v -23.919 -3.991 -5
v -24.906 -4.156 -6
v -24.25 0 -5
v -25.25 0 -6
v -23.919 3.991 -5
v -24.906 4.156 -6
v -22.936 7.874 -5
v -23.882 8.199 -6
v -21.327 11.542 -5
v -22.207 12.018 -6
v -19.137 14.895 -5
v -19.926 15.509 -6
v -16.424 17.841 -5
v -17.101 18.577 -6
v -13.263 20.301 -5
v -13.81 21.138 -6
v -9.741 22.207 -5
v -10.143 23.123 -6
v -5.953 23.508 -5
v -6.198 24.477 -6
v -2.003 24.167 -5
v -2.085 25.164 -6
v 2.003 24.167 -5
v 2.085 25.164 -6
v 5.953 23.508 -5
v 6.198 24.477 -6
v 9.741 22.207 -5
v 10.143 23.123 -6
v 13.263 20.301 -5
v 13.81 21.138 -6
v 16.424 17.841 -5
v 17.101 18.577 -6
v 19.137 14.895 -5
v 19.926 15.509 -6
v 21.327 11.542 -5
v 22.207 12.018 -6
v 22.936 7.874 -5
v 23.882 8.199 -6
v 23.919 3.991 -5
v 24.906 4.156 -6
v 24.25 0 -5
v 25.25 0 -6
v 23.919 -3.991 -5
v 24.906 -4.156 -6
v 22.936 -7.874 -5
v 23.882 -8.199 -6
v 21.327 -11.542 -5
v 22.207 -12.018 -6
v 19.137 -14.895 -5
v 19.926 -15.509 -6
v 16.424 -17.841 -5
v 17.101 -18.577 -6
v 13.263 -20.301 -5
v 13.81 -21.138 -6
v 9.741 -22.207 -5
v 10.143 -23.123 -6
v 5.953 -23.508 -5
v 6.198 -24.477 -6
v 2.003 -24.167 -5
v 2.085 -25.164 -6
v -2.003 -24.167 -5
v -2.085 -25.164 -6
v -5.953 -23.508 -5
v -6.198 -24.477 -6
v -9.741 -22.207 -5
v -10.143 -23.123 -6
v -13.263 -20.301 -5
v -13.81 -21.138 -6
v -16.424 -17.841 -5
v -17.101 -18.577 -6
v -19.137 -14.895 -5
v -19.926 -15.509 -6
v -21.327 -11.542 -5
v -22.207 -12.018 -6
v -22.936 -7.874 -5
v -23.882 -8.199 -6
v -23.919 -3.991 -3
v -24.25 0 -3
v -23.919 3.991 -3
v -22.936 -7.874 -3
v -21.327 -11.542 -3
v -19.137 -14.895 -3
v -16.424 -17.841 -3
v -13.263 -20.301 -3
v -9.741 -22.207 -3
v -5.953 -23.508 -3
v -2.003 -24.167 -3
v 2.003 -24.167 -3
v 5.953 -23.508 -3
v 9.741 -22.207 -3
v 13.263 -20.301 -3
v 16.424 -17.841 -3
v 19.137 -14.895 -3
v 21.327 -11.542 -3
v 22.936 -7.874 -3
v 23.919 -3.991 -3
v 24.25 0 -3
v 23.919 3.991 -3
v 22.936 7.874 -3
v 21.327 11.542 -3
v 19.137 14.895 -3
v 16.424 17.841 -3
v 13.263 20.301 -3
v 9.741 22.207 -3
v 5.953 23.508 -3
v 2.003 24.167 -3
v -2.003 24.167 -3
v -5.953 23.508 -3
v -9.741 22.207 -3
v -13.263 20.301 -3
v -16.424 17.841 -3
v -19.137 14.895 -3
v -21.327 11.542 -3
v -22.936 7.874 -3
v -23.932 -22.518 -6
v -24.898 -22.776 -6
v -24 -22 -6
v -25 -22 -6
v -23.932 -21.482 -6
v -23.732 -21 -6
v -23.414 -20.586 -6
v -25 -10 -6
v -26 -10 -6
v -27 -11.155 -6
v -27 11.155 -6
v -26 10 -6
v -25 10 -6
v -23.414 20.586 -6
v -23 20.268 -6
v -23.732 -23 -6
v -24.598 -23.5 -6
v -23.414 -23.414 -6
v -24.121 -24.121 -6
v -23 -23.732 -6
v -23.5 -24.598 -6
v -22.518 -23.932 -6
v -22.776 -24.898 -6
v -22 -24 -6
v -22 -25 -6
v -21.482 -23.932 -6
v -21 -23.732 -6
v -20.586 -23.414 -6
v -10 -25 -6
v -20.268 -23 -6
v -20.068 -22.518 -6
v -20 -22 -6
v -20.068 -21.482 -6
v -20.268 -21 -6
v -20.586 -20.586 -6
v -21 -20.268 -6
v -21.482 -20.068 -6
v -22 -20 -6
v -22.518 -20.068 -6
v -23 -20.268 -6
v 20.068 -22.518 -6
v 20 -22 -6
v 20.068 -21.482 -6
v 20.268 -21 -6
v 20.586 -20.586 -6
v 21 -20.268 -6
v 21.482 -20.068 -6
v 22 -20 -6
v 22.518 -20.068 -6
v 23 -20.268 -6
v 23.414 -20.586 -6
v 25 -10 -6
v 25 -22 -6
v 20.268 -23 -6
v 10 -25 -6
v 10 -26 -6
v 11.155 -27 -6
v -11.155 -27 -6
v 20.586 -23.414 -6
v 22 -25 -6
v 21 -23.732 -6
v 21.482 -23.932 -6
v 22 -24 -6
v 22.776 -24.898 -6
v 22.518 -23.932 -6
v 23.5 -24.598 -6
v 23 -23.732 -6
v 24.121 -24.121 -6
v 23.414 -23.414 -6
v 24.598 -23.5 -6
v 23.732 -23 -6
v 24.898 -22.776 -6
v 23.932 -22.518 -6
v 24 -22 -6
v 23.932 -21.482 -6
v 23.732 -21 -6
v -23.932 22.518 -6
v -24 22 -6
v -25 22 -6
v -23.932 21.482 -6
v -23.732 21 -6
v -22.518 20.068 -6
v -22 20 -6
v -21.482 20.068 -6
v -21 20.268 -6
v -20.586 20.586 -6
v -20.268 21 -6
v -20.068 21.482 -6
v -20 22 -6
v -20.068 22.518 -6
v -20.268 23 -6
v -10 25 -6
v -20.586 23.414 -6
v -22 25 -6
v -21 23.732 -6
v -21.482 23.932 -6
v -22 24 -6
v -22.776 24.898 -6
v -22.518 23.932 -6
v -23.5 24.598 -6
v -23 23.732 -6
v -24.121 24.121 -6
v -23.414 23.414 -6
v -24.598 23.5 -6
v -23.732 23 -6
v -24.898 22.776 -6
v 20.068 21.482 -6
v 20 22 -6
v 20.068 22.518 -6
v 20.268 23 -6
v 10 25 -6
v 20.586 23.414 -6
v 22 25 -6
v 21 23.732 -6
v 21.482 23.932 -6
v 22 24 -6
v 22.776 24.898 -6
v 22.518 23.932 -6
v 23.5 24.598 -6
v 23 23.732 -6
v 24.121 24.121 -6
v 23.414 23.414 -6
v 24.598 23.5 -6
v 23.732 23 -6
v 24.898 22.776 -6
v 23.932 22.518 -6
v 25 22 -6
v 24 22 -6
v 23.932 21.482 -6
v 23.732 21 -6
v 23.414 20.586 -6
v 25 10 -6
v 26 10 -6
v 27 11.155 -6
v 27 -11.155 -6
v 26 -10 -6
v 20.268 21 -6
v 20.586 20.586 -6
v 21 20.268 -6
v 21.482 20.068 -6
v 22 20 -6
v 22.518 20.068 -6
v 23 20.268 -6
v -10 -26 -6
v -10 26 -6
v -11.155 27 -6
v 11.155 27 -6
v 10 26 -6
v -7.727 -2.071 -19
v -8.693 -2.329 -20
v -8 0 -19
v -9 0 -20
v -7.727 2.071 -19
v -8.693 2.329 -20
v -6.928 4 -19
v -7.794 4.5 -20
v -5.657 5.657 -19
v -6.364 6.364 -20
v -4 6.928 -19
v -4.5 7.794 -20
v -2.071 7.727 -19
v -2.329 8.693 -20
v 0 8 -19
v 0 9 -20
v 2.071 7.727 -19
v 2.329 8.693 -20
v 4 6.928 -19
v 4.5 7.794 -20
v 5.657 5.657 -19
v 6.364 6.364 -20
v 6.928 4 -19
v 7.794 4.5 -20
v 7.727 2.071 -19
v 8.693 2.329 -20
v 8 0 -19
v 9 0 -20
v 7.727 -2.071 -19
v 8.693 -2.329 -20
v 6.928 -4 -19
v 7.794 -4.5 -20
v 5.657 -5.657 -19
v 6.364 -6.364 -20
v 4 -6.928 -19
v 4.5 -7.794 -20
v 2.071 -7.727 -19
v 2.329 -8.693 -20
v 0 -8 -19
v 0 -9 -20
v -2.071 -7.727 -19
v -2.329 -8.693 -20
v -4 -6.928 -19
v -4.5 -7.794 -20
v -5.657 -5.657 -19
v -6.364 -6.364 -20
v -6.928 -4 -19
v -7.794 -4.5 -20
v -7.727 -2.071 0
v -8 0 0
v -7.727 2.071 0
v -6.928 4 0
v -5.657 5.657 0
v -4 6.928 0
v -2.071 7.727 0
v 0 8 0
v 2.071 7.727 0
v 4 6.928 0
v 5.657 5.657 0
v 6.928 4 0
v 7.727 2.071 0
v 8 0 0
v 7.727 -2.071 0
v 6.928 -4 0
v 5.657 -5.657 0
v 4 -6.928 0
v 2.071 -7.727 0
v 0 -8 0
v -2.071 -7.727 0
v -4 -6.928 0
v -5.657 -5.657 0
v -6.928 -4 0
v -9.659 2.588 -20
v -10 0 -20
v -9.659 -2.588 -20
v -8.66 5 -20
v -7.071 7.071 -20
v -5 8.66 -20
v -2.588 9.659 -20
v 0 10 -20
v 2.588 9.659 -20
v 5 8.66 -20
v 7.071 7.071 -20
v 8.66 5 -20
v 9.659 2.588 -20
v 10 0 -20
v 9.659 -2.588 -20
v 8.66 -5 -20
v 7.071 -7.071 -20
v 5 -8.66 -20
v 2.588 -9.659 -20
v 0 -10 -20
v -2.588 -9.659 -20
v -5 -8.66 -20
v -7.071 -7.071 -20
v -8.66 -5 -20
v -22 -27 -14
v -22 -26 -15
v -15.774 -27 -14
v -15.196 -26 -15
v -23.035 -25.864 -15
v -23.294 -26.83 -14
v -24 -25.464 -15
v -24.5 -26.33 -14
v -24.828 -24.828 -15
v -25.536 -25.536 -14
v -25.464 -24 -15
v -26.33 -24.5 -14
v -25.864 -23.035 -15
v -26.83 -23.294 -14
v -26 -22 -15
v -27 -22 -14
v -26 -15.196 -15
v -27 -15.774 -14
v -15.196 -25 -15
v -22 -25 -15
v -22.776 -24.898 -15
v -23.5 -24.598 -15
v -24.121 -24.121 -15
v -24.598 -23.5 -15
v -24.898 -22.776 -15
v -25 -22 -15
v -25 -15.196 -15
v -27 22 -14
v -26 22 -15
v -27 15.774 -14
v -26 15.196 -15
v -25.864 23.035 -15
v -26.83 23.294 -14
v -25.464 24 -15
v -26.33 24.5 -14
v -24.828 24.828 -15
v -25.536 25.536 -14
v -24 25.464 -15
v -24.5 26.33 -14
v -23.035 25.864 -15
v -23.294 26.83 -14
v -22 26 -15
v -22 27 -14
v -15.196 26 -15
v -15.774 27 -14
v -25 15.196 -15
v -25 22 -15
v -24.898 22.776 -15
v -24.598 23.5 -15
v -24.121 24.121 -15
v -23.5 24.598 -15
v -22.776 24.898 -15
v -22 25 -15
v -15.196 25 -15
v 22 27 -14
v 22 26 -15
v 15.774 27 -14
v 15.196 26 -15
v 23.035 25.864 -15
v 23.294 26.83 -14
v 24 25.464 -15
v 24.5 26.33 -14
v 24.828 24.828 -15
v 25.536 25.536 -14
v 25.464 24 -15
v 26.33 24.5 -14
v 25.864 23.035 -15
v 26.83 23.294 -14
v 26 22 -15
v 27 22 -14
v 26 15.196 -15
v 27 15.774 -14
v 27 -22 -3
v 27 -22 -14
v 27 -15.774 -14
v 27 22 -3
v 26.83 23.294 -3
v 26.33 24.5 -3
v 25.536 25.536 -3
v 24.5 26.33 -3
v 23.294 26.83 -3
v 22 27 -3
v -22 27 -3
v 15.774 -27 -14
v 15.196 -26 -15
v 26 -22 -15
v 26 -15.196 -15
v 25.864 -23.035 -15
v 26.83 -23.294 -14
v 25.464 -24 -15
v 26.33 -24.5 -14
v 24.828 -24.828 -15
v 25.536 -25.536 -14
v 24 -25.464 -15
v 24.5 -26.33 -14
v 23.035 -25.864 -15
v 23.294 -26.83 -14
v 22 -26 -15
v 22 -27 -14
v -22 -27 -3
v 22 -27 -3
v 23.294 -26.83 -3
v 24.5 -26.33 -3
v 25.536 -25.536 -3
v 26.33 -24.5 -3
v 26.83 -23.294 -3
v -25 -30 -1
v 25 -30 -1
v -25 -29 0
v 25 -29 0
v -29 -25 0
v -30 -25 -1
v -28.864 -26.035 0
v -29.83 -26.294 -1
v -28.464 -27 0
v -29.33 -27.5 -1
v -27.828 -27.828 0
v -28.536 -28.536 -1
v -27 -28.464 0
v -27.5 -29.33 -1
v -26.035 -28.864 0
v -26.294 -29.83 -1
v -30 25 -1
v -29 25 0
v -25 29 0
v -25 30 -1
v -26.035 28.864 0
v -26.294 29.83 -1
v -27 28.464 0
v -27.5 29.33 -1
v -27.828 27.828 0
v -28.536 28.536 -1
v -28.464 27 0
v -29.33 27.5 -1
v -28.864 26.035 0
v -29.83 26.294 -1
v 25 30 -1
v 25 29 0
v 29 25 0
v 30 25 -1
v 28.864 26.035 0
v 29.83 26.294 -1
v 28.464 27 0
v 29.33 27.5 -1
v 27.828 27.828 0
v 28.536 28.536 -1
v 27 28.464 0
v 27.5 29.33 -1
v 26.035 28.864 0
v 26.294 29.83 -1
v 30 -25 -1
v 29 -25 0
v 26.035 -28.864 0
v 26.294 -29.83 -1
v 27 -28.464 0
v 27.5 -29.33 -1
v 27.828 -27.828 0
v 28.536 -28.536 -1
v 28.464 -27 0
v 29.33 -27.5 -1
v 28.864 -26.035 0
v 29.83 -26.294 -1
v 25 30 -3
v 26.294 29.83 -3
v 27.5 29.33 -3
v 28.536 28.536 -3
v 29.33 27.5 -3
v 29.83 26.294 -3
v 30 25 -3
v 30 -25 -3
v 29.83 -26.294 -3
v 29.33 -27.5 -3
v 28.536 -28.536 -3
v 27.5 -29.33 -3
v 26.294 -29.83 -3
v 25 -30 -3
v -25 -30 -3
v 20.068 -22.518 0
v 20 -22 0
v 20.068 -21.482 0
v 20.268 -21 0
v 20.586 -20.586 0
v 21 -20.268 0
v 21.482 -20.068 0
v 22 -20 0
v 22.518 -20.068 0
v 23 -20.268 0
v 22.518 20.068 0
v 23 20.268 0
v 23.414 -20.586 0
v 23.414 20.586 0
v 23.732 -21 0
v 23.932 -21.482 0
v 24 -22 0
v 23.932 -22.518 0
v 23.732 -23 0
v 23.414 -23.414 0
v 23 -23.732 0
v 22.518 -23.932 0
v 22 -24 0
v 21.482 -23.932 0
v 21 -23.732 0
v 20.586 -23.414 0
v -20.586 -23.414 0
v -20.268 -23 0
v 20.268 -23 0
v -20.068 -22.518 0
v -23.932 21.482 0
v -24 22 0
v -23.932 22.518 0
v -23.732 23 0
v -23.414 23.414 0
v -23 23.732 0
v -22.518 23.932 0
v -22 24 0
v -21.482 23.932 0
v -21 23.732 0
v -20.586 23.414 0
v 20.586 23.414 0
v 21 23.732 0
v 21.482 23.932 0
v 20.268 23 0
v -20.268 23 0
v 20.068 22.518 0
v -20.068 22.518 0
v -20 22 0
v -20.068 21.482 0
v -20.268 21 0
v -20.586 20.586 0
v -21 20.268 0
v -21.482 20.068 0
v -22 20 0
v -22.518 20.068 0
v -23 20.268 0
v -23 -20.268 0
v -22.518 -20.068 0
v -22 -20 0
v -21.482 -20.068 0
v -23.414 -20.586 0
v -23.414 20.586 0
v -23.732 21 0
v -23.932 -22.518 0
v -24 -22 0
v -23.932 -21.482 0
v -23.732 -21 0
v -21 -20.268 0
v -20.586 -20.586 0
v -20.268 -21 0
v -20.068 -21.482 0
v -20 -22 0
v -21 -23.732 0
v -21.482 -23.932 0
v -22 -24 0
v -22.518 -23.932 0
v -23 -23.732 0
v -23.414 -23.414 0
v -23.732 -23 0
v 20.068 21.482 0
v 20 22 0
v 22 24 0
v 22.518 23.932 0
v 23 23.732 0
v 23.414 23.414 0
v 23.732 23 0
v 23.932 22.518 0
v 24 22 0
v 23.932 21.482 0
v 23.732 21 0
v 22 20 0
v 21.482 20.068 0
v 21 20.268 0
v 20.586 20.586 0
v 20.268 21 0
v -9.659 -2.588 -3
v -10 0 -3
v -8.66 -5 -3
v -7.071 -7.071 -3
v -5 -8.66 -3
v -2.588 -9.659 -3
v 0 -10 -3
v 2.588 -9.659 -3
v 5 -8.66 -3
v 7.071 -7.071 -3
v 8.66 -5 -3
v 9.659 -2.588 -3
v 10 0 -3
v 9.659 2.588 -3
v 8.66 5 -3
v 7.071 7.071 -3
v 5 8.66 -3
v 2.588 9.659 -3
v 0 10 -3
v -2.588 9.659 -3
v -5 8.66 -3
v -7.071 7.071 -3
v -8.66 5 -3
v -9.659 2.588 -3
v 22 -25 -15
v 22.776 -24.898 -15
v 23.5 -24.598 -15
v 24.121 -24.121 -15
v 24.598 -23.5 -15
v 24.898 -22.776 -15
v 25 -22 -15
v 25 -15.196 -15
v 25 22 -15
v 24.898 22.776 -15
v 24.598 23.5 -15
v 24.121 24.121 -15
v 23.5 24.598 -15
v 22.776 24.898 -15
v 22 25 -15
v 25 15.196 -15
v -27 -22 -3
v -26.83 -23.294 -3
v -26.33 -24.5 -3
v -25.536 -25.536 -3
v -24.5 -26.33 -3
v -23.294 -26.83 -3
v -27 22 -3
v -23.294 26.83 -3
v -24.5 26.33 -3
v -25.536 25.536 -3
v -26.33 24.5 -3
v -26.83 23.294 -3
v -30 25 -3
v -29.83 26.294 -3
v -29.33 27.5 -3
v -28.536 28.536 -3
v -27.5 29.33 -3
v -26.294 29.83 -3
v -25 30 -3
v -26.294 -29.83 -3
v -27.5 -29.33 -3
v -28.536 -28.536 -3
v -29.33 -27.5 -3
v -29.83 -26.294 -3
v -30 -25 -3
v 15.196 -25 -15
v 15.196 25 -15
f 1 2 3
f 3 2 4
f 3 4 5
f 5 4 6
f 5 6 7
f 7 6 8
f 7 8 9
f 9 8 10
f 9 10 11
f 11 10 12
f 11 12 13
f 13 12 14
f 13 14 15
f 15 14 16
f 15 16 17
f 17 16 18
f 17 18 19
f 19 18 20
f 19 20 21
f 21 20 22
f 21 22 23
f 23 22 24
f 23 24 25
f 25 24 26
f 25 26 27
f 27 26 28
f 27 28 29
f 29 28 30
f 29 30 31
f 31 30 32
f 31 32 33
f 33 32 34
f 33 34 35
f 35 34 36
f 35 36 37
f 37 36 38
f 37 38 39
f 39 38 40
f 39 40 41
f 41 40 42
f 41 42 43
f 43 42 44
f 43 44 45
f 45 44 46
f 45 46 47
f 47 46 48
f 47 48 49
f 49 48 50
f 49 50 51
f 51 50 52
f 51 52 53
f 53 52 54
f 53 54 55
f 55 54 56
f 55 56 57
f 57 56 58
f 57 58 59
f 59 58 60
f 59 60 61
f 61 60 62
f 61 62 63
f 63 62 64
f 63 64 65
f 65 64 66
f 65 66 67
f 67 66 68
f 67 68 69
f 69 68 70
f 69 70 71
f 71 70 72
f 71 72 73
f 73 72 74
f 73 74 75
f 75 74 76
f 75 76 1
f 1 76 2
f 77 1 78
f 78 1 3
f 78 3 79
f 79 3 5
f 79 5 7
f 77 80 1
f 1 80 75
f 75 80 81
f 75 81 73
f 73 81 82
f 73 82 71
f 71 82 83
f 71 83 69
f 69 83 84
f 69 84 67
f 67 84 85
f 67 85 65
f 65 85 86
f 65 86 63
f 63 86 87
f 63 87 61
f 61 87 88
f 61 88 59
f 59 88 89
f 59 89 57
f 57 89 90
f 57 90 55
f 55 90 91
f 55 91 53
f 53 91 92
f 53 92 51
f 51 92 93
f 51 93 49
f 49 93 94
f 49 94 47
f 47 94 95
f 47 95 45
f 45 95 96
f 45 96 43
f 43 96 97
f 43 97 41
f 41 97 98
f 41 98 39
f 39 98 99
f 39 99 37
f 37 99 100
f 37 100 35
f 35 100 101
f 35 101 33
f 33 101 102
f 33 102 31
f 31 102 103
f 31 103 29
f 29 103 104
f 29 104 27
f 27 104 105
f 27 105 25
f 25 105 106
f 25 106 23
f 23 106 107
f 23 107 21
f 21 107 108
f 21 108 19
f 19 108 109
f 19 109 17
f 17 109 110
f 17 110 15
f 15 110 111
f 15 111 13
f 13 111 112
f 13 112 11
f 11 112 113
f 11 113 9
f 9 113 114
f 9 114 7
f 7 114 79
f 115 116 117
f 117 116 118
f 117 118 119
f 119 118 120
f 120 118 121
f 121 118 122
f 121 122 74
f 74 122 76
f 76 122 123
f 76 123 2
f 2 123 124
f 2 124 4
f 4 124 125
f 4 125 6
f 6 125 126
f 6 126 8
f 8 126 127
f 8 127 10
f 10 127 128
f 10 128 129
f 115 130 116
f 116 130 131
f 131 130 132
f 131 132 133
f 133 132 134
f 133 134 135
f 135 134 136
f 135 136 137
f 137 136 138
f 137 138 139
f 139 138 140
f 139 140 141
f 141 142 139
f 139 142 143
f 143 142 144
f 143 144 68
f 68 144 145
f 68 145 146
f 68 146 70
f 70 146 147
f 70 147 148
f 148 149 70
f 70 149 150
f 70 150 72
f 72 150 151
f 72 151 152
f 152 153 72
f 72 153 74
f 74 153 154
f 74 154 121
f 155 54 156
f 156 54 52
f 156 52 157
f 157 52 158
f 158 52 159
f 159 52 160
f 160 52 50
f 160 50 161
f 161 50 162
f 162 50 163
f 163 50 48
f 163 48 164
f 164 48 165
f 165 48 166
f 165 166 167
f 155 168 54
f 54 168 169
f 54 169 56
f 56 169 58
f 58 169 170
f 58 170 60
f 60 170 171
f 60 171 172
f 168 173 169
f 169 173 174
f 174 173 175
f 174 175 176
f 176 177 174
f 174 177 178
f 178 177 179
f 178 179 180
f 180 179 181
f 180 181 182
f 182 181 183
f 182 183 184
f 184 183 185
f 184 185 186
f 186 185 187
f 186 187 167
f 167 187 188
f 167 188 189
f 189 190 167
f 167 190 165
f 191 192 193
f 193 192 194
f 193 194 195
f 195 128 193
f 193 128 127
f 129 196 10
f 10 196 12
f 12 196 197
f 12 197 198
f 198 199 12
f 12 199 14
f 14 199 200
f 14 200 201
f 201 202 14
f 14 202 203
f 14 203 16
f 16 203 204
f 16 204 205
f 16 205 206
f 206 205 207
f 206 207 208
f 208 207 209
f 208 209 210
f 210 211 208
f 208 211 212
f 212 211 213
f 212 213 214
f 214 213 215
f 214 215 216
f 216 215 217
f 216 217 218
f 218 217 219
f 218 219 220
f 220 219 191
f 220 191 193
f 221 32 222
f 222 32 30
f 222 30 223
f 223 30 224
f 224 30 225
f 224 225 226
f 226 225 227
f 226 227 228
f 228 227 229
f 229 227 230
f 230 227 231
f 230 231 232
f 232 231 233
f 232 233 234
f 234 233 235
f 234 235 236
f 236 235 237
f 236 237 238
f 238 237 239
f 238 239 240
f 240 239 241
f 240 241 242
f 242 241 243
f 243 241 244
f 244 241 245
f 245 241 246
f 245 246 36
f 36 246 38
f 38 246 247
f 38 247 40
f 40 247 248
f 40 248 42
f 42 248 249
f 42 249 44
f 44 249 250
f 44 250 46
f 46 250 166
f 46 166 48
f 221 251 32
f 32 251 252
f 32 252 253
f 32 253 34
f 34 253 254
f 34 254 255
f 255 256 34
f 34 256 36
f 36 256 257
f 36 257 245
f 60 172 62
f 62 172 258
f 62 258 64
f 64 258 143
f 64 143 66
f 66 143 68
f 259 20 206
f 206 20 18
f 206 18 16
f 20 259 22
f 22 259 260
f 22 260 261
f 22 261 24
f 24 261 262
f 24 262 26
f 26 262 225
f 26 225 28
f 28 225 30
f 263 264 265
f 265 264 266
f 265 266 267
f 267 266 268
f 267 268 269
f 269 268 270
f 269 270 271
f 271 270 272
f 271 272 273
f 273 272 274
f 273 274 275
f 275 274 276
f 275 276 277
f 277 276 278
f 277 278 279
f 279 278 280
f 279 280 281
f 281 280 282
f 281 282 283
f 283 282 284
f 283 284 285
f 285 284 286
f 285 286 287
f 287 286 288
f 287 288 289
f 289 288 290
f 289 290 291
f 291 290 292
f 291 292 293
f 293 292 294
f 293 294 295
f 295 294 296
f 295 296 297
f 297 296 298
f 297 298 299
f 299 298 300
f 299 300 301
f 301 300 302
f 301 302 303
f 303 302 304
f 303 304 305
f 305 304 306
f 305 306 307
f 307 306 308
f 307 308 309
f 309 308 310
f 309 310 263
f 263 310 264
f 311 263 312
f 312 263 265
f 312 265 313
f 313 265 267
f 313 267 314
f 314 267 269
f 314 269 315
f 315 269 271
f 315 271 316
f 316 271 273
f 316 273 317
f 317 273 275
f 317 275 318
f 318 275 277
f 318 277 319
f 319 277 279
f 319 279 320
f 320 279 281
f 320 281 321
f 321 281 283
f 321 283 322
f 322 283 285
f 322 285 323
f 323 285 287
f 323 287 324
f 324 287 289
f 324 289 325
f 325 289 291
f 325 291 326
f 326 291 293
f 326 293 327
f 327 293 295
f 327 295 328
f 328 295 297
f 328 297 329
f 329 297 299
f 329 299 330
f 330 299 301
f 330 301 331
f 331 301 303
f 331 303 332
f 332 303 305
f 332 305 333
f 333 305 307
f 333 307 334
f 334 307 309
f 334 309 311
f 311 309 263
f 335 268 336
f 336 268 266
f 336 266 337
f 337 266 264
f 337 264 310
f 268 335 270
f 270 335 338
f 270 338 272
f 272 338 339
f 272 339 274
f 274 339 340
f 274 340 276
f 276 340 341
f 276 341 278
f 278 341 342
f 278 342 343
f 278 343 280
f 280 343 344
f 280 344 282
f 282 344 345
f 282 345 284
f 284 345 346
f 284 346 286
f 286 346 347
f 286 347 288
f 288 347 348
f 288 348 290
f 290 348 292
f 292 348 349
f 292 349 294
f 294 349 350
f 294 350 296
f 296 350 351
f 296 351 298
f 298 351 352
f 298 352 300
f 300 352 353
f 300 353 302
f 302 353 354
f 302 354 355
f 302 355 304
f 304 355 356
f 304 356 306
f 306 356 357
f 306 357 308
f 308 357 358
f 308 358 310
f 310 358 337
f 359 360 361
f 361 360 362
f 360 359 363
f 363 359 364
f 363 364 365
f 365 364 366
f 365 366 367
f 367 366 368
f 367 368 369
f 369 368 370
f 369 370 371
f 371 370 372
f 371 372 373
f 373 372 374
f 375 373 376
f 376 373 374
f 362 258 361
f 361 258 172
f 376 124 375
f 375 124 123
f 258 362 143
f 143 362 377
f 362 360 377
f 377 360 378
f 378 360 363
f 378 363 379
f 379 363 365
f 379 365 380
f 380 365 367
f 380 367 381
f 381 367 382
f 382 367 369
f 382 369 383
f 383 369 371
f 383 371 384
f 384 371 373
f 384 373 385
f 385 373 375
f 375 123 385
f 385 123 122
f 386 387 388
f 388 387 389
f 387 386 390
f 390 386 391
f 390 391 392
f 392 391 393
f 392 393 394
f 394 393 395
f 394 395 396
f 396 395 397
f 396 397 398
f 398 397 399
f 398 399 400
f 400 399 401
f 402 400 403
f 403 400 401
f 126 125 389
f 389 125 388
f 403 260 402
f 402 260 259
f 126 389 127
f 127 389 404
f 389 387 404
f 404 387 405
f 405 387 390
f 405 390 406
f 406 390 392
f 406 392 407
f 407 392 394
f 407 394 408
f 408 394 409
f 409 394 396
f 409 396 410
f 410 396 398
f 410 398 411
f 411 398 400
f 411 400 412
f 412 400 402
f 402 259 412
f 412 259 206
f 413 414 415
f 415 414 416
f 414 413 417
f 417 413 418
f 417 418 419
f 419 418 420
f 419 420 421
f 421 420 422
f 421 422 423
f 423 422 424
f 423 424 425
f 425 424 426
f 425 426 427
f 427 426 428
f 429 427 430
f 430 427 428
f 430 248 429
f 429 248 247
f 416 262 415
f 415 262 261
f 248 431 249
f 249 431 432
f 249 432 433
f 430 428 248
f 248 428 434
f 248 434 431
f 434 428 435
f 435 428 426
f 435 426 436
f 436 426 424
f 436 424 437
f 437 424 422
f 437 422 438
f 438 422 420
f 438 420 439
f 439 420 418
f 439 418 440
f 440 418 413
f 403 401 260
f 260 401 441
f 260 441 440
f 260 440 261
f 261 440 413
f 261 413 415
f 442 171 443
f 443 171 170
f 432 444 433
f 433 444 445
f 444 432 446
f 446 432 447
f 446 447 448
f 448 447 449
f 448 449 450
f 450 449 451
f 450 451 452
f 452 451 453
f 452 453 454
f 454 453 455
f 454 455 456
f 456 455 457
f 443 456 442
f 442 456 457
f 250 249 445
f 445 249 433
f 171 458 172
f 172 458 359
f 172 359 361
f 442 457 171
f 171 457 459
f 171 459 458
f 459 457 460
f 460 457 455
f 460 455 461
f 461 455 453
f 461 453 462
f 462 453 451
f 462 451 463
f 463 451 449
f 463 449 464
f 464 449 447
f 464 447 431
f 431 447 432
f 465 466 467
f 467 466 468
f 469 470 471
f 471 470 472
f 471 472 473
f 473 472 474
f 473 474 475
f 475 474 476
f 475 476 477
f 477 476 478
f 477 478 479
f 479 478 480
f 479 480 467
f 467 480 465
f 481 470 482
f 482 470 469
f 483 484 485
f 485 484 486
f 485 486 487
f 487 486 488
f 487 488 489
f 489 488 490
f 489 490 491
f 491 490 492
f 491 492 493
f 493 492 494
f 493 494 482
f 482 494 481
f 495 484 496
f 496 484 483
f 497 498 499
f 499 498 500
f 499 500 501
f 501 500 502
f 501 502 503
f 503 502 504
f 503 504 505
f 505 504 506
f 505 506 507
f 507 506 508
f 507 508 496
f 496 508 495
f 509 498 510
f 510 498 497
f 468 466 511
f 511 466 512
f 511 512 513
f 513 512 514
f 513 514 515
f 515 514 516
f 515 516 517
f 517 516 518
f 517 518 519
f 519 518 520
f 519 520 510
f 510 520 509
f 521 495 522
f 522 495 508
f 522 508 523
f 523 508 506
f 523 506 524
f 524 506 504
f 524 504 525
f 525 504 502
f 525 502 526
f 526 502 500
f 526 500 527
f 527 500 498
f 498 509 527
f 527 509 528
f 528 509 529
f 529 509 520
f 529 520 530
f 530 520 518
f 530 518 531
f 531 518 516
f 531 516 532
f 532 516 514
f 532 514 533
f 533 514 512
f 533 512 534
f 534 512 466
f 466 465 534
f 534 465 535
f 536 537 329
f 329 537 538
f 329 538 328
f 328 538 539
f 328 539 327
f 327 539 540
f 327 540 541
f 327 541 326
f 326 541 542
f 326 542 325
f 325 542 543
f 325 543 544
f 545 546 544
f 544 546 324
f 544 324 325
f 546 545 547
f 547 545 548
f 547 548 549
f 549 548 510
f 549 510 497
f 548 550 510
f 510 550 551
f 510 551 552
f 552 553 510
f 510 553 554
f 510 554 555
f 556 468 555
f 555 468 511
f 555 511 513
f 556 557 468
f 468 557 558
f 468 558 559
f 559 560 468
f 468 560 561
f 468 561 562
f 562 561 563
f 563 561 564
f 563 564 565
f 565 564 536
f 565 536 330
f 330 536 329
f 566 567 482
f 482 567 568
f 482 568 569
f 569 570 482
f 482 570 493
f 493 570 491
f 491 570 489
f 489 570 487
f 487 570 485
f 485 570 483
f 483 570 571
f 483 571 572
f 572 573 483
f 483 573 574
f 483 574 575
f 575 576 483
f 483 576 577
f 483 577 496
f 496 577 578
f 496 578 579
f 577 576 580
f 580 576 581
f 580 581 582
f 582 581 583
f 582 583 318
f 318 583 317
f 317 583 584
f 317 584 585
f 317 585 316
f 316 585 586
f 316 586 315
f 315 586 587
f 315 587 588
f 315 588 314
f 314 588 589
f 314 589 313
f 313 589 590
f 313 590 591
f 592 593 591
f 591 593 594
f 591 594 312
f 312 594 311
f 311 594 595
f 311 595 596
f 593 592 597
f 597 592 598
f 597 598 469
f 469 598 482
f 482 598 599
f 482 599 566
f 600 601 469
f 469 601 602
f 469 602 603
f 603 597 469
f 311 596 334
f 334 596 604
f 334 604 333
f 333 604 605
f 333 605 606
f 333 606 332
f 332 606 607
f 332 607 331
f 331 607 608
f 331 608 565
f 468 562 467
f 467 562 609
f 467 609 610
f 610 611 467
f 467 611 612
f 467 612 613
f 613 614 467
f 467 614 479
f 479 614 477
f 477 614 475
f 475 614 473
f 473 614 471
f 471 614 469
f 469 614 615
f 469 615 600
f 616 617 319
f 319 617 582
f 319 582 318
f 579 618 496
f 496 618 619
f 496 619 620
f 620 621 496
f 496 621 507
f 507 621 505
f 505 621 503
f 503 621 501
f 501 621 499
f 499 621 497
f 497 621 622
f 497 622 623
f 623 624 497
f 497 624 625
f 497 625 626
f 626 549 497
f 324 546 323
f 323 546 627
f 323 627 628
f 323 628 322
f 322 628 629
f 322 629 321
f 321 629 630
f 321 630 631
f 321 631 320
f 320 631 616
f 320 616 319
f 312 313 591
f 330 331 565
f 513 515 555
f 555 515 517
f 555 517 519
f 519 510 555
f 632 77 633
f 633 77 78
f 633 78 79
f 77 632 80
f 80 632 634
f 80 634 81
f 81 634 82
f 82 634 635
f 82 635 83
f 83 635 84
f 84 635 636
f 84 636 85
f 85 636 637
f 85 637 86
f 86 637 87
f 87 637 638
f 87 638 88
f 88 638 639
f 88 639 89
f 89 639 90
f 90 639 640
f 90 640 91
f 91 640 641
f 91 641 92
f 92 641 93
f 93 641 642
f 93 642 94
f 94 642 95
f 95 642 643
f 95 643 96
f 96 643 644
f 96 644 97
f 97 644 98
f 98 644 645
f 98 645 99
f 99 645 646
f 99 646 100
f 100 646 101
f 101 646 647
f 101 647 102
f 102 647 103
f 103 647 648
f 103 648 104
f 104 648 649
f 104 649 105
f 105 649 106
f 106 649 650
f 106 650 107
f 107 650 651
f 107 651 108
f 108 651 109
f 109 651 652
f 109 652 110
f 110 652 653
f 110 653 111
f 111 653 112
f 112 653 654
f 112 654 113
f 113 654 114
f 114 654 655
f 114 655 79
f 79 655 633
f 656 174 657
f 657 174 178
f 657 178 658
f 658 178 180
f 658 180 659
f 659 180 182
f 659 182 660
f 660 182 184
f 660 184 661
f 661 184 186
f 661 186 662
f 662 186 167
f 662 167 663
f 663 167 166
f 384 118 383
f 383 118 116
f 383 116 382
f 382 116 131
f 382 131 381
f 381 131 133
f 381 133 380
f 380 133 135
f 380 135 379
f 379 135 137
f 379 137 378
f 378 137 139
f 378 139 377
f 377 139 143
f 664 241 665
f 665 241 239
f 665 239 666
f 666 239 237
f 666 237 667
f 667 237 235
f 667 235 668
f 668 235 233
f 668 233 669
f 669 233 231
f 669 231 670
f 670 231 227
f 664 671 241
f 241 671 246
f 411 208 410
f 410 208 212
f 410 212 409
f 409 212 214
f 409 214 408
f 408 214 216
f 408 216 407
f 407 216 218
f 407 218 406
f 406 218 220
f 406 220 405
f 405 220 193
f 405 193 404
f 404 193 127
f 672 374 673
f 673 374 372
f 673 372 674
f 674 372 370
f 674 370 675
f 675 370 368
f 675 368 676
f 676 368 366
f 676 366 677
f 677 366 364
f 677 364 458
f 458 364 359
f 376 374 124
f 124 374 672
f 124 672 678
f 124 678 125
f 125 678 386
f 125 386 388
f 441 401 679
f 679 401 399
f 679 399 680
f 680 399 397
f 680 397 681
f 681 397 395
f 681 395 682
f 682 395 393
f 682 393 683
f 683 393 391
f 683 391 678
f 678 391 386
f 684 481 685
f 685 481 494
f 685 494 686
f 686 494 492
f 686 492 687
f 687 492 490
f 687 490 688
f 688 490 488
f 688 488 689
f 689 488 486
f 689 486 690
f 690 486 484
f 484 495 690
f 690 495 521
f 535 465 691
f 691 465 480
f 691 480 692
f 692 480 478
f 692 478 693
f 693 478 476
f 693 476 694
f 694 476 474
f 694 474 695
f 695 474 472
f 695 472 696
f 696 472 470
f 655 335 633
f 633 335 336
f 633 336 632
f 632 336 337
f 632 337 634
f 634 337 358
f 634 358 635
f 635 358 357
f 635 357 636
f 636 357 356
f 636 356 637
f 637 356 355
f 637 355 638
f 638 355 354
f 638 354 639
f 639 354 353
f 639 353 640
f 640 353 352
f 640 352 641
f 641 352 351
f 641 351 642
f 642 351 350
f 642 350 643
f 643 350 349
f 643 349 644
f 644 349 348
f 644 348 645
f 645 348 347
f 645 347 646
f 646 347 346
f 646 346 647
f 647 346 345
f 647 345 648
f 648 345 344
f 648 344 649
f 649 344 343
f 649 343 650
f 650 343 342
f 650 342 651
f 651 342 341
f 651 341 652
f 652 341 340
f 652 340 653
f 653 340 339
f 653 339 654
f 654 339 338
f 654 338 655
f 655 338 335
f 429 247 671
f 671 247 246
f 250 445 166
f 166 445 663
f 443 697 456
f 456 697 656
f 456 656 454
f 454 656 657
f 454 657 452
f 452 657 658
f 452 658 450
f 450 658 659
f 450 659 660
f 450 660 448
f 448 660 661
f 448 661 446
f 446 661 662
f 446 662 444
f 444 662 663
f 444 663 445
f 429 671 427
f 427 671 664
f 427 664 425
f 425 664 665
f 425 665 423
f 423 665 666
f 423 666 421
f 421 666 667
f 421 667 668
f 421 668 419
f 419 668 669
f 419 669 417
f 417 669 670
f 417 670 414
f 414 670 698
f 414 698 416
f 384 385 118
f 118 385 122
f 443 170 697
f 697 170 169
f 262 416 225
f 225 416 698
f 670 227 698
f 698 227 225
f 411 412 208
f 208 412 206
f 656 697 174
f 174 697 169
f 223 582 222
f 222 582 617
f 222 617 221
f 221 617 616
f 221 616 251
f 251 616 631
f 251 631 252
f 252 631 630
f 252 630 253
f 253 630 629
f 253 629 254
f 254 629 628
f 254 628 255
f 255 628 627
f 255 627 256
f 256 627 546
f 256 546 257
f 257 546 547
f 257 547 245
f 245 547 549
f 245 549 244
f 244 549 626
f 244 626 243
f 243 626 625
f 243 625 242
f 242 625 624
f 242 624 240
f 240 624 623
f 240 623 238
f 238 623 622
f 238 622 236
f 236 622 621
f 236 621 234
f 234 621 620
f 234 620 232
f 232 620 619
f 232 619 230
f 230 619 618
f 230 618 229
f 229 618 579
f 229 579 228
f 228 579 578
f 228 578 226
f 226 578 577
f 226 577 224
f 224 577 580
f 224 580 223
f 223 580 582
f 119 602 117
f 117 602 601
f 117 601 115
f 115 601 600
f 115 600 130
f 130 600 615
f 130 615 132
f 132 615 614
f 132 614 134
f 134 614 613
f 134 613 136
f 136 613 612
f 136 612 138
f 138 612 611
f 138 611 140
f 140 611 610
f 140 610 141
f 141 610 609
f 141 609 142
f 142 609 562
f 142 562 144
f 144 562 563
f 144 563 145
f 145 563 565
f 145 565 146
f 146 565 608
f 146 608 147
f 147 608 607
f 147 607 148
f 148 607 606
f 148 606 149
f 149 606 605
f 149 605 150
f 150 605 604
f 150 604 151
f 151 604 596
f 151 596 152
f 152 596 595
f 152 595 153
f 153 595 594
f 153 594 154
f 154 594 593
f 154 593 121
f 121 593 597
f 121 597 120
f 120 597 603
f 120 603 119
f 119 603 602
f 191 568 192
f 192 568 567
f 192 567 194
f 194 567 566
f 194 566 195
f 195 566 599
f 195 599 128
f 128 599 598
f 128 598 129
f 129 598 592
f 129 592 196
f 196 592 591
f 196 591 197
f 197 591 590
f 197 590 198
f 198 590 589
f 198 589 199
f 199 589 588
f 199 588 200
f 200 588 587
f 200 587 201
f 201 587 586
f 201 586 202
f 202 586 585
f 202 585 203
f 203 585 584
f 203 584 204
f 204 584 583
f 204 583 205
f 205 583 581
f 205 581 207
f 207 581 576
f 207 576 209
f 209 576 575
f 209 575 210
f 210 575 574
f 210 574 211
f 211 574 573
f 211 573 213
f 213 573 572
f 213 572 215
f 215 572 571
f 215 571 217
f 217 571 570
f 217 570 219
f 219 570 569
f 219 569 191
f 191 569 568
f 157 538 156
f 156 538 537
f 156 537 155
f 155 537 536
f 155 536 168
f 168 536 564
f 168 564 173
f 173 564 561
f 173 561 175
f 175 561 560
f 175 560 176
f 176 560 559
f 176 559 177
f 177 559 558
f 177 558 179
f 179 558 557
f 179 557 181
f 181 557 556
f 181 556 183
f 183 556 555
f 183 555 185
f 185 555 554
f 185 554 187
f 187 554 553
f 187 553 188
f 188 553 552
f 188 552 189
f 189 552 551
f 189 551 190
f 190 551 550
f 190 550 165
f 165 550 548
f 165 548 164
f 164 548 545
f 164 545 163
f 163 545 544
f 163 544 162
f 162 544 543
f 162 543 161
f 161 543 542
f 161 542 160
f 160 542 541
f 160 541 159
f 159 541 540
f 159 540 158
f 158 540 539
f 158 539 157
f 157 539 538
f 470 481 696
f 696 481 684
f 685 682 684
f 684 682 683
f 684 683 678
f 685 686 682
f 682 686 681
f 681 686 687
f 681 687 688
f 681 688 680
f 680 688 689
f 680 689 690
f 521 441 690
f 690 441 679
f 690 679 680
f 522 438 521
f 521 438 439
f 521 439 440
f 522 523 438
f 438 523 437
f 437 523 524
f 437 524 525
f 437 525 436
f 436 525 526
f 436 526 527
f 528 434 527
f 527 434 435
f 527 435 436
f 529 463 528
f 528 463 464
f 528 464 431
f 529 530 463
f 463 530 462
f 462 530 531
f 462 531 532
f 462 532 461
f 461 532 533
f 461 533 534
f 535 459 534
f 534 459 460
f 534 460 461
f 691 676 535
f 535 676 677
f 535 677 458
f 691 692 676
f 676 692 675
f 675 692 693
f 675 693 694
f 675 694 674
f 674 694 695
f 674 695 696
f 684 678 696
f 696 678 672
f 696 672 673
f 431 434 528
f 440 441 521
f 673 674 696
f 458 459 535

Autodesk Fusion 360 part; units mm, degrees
sketch "Common" plane through (0, 0, 0) normal (0, 0, 1) x (1, 0, 0)
  line L0 (30, -30) -> (-30, -30)
  line L1 (-30, -30) -> (-30, 30)
  line L2 (-30, 30) -> (30, 30)
  line L3 (30, 30) -> (30, -30)
  line L4 (30, -30) -> (-30, 30) construction
  line L5 (-30, -30) -> (30, 30) construction
  circle A0 centre (0, 0) radius 8
  circle A1 centre (0, 0) radius 10
  line L6 (-27, -27) -> (-27, 27)
  line L7 (-27, 27) -> (27, 27)
  line L8 (27, 27) -> (27, -27)
  line L9 (27, -27) -> (-27, -27)
  circle A2 centre (22, -22) radius 2
  circle A3 centre (22, 22) radius 2
  circle A4 centre (-22, 22) radius 2
  circle A5 centre (-22, -22) radius 2
  line L10 (25, -25) -> (-25, -25)
  line L11 (-25, -25) -> (-25, 25)
  line L12 (-25, 25) -> (25, 25)
  line L13 (25, 25) -> (25, -25)
  circle A6 centre (0, 0) radius 24.25
  dimension "d1" = 60
  dimension "d2" = 60
  dimension "d3" = 16
  dimension "d4" = 2
  dimension "d5" = 3
  dimension "d6" = 4
  dimension "d8" = 8
  dimension "d10" = 360
  dimension "d11" = 5
  dimension "d31" = 48.5
extrude "Extrude2" add sketch "Common" against normal blind 3 contours L0 L1 L2 L3 in component "Plug"
extrude "Extrude3" add sketch "Common" against normal blind 15 contours L6 L7 L8 L9 in component "Plug"
extrude "Extrude4" add sketch "Common" against normal blind 6 contours L10 L11 L12 L13 | A6 in component "Plug"
sketch "Flange cutout1" plane through (0, 0, 0) normal (0, 1, 0) x (1, 0, 0) in component "Plug"
  line L0 (0, 0) -> (0, 40) construction
  line L1 (0, 6) -> (10, 6)
  line L2 (10, 6) -> (25, 31.9808)
  line L3 (10, 6) -> (37, 6) construction
  line L4 (25, 31.9808) -> (0, 31.9808)
  line L5 (-25, 31.9808) -> (0, 31.9808)
  line L6 (0, 6) -> (-10, 6)
  line L7 (-10, 6) -> (-25, 31.9808)
  dimension "d90" = 40
  dimension "d91" = 10
  dimension "d92" = 6
  dimension "d93" = 30
  dimension "d94" = 60
extrude "Extrude6" cut sketch "Flange cutout1" along normal mid plane 100 in component "Plug"
sketch "Flange cutout2" plane through (0, 0, 0) normal (1, 0, 0) x (0, 1, 0) in component "Plug"
  line L0 (-25, -31.9808) -> (0, -31.9808)
  line L1 (0, -6) -> (10, -6)
  line L2 (-10, -6) -> (-25, -31.9808)
  line L3 (0, -6) -> (-10, -6)
  line L4 (-10, -6) -> (-37, -6) construction
  line L5 (0, 0) -> (0, -40) construction
  line L6 (10, -6) -> (25, -31.9808)
  line L7 (25, -31.9808) -> (0, -31.9808)
  point P0 (0.1488, 0.1515)
  dimension "d104" = 40
  dimension "d105" = 10
  dimension "d106" = 6
  dimension "d107" = 30
  dimension "d108" = 60
extrude "Extrude7" cut sketch "Flange cutout2" along normal mid plane 200 in component "Plug"
extrude "Extrude5" add sketch "Common" against normal blind 20 contours A1 in component "Plug"
fillet "Fillet1" radius 5 4 edges at (-30, -30, -1.5) (30, -30, -1.5) (30, 30, -1.5) (-30, 30, -1.5) in component "Plug"
fillet "Fillet1" radius 5 4 edges at (-27, 27, -9) (-27, -27, -9) (27, 27, -9) (27, -27, -9) in component "Plug"
fillet "Fillet1" radius 3 4 edges at (-25, 25, -10.5) (25, 25, -10.5) (-25, -25, -10.5) (25, -25, -10.5) in component "Plug"
extrude "Extrude8" cut sketch "Common" against normal blind 3 from surface at -3 contours A6 in component "Plug"
chamfer "Chamfer1" distance 1 angle 45 30 edges at (0, -30, 0) (-28.5355, -28.5355, 0) (-30, 0, 0) (-28.5355, 28.5355, 0) (0, 30, 0) (28.5355, 28.5355, 0) (30, 0, 0) (28.5355, -28.5355, 0) (27, -18.5981, -15) (25.5355, -25.5355, -15) (18.5981, -27, -15) (27, -12.5981, -10.5) (27, 12.5981, -10.5) (25.5355, 25.5355, -15) (27, 18.5981, -15) (18.5981, 27, -15) (-18.5981, 27, -15) (-25.5355, 25.5355, -15) (-27, 18.5981, -15) (-18.5981, -27, -15) (-25.5355, -25.5355, -15) (-27, -18.5981, -15) (-12.5981, -27, -10.5) (-12.5981, 27, -10.5) (12.5981, 27, -10.5) (12.5981, -27, -10.5) (-27, -12.5981, -10.5) (-27, 12.5981, -10.5) (-7.4586, -2.8929, -20) (-22.6089, -8.7692, -6) in component "Plug"
component "Plug" placed x (1, 0, 0) y (0, 1, 0) z (0, 0, 1) at (0, 0, 0)
